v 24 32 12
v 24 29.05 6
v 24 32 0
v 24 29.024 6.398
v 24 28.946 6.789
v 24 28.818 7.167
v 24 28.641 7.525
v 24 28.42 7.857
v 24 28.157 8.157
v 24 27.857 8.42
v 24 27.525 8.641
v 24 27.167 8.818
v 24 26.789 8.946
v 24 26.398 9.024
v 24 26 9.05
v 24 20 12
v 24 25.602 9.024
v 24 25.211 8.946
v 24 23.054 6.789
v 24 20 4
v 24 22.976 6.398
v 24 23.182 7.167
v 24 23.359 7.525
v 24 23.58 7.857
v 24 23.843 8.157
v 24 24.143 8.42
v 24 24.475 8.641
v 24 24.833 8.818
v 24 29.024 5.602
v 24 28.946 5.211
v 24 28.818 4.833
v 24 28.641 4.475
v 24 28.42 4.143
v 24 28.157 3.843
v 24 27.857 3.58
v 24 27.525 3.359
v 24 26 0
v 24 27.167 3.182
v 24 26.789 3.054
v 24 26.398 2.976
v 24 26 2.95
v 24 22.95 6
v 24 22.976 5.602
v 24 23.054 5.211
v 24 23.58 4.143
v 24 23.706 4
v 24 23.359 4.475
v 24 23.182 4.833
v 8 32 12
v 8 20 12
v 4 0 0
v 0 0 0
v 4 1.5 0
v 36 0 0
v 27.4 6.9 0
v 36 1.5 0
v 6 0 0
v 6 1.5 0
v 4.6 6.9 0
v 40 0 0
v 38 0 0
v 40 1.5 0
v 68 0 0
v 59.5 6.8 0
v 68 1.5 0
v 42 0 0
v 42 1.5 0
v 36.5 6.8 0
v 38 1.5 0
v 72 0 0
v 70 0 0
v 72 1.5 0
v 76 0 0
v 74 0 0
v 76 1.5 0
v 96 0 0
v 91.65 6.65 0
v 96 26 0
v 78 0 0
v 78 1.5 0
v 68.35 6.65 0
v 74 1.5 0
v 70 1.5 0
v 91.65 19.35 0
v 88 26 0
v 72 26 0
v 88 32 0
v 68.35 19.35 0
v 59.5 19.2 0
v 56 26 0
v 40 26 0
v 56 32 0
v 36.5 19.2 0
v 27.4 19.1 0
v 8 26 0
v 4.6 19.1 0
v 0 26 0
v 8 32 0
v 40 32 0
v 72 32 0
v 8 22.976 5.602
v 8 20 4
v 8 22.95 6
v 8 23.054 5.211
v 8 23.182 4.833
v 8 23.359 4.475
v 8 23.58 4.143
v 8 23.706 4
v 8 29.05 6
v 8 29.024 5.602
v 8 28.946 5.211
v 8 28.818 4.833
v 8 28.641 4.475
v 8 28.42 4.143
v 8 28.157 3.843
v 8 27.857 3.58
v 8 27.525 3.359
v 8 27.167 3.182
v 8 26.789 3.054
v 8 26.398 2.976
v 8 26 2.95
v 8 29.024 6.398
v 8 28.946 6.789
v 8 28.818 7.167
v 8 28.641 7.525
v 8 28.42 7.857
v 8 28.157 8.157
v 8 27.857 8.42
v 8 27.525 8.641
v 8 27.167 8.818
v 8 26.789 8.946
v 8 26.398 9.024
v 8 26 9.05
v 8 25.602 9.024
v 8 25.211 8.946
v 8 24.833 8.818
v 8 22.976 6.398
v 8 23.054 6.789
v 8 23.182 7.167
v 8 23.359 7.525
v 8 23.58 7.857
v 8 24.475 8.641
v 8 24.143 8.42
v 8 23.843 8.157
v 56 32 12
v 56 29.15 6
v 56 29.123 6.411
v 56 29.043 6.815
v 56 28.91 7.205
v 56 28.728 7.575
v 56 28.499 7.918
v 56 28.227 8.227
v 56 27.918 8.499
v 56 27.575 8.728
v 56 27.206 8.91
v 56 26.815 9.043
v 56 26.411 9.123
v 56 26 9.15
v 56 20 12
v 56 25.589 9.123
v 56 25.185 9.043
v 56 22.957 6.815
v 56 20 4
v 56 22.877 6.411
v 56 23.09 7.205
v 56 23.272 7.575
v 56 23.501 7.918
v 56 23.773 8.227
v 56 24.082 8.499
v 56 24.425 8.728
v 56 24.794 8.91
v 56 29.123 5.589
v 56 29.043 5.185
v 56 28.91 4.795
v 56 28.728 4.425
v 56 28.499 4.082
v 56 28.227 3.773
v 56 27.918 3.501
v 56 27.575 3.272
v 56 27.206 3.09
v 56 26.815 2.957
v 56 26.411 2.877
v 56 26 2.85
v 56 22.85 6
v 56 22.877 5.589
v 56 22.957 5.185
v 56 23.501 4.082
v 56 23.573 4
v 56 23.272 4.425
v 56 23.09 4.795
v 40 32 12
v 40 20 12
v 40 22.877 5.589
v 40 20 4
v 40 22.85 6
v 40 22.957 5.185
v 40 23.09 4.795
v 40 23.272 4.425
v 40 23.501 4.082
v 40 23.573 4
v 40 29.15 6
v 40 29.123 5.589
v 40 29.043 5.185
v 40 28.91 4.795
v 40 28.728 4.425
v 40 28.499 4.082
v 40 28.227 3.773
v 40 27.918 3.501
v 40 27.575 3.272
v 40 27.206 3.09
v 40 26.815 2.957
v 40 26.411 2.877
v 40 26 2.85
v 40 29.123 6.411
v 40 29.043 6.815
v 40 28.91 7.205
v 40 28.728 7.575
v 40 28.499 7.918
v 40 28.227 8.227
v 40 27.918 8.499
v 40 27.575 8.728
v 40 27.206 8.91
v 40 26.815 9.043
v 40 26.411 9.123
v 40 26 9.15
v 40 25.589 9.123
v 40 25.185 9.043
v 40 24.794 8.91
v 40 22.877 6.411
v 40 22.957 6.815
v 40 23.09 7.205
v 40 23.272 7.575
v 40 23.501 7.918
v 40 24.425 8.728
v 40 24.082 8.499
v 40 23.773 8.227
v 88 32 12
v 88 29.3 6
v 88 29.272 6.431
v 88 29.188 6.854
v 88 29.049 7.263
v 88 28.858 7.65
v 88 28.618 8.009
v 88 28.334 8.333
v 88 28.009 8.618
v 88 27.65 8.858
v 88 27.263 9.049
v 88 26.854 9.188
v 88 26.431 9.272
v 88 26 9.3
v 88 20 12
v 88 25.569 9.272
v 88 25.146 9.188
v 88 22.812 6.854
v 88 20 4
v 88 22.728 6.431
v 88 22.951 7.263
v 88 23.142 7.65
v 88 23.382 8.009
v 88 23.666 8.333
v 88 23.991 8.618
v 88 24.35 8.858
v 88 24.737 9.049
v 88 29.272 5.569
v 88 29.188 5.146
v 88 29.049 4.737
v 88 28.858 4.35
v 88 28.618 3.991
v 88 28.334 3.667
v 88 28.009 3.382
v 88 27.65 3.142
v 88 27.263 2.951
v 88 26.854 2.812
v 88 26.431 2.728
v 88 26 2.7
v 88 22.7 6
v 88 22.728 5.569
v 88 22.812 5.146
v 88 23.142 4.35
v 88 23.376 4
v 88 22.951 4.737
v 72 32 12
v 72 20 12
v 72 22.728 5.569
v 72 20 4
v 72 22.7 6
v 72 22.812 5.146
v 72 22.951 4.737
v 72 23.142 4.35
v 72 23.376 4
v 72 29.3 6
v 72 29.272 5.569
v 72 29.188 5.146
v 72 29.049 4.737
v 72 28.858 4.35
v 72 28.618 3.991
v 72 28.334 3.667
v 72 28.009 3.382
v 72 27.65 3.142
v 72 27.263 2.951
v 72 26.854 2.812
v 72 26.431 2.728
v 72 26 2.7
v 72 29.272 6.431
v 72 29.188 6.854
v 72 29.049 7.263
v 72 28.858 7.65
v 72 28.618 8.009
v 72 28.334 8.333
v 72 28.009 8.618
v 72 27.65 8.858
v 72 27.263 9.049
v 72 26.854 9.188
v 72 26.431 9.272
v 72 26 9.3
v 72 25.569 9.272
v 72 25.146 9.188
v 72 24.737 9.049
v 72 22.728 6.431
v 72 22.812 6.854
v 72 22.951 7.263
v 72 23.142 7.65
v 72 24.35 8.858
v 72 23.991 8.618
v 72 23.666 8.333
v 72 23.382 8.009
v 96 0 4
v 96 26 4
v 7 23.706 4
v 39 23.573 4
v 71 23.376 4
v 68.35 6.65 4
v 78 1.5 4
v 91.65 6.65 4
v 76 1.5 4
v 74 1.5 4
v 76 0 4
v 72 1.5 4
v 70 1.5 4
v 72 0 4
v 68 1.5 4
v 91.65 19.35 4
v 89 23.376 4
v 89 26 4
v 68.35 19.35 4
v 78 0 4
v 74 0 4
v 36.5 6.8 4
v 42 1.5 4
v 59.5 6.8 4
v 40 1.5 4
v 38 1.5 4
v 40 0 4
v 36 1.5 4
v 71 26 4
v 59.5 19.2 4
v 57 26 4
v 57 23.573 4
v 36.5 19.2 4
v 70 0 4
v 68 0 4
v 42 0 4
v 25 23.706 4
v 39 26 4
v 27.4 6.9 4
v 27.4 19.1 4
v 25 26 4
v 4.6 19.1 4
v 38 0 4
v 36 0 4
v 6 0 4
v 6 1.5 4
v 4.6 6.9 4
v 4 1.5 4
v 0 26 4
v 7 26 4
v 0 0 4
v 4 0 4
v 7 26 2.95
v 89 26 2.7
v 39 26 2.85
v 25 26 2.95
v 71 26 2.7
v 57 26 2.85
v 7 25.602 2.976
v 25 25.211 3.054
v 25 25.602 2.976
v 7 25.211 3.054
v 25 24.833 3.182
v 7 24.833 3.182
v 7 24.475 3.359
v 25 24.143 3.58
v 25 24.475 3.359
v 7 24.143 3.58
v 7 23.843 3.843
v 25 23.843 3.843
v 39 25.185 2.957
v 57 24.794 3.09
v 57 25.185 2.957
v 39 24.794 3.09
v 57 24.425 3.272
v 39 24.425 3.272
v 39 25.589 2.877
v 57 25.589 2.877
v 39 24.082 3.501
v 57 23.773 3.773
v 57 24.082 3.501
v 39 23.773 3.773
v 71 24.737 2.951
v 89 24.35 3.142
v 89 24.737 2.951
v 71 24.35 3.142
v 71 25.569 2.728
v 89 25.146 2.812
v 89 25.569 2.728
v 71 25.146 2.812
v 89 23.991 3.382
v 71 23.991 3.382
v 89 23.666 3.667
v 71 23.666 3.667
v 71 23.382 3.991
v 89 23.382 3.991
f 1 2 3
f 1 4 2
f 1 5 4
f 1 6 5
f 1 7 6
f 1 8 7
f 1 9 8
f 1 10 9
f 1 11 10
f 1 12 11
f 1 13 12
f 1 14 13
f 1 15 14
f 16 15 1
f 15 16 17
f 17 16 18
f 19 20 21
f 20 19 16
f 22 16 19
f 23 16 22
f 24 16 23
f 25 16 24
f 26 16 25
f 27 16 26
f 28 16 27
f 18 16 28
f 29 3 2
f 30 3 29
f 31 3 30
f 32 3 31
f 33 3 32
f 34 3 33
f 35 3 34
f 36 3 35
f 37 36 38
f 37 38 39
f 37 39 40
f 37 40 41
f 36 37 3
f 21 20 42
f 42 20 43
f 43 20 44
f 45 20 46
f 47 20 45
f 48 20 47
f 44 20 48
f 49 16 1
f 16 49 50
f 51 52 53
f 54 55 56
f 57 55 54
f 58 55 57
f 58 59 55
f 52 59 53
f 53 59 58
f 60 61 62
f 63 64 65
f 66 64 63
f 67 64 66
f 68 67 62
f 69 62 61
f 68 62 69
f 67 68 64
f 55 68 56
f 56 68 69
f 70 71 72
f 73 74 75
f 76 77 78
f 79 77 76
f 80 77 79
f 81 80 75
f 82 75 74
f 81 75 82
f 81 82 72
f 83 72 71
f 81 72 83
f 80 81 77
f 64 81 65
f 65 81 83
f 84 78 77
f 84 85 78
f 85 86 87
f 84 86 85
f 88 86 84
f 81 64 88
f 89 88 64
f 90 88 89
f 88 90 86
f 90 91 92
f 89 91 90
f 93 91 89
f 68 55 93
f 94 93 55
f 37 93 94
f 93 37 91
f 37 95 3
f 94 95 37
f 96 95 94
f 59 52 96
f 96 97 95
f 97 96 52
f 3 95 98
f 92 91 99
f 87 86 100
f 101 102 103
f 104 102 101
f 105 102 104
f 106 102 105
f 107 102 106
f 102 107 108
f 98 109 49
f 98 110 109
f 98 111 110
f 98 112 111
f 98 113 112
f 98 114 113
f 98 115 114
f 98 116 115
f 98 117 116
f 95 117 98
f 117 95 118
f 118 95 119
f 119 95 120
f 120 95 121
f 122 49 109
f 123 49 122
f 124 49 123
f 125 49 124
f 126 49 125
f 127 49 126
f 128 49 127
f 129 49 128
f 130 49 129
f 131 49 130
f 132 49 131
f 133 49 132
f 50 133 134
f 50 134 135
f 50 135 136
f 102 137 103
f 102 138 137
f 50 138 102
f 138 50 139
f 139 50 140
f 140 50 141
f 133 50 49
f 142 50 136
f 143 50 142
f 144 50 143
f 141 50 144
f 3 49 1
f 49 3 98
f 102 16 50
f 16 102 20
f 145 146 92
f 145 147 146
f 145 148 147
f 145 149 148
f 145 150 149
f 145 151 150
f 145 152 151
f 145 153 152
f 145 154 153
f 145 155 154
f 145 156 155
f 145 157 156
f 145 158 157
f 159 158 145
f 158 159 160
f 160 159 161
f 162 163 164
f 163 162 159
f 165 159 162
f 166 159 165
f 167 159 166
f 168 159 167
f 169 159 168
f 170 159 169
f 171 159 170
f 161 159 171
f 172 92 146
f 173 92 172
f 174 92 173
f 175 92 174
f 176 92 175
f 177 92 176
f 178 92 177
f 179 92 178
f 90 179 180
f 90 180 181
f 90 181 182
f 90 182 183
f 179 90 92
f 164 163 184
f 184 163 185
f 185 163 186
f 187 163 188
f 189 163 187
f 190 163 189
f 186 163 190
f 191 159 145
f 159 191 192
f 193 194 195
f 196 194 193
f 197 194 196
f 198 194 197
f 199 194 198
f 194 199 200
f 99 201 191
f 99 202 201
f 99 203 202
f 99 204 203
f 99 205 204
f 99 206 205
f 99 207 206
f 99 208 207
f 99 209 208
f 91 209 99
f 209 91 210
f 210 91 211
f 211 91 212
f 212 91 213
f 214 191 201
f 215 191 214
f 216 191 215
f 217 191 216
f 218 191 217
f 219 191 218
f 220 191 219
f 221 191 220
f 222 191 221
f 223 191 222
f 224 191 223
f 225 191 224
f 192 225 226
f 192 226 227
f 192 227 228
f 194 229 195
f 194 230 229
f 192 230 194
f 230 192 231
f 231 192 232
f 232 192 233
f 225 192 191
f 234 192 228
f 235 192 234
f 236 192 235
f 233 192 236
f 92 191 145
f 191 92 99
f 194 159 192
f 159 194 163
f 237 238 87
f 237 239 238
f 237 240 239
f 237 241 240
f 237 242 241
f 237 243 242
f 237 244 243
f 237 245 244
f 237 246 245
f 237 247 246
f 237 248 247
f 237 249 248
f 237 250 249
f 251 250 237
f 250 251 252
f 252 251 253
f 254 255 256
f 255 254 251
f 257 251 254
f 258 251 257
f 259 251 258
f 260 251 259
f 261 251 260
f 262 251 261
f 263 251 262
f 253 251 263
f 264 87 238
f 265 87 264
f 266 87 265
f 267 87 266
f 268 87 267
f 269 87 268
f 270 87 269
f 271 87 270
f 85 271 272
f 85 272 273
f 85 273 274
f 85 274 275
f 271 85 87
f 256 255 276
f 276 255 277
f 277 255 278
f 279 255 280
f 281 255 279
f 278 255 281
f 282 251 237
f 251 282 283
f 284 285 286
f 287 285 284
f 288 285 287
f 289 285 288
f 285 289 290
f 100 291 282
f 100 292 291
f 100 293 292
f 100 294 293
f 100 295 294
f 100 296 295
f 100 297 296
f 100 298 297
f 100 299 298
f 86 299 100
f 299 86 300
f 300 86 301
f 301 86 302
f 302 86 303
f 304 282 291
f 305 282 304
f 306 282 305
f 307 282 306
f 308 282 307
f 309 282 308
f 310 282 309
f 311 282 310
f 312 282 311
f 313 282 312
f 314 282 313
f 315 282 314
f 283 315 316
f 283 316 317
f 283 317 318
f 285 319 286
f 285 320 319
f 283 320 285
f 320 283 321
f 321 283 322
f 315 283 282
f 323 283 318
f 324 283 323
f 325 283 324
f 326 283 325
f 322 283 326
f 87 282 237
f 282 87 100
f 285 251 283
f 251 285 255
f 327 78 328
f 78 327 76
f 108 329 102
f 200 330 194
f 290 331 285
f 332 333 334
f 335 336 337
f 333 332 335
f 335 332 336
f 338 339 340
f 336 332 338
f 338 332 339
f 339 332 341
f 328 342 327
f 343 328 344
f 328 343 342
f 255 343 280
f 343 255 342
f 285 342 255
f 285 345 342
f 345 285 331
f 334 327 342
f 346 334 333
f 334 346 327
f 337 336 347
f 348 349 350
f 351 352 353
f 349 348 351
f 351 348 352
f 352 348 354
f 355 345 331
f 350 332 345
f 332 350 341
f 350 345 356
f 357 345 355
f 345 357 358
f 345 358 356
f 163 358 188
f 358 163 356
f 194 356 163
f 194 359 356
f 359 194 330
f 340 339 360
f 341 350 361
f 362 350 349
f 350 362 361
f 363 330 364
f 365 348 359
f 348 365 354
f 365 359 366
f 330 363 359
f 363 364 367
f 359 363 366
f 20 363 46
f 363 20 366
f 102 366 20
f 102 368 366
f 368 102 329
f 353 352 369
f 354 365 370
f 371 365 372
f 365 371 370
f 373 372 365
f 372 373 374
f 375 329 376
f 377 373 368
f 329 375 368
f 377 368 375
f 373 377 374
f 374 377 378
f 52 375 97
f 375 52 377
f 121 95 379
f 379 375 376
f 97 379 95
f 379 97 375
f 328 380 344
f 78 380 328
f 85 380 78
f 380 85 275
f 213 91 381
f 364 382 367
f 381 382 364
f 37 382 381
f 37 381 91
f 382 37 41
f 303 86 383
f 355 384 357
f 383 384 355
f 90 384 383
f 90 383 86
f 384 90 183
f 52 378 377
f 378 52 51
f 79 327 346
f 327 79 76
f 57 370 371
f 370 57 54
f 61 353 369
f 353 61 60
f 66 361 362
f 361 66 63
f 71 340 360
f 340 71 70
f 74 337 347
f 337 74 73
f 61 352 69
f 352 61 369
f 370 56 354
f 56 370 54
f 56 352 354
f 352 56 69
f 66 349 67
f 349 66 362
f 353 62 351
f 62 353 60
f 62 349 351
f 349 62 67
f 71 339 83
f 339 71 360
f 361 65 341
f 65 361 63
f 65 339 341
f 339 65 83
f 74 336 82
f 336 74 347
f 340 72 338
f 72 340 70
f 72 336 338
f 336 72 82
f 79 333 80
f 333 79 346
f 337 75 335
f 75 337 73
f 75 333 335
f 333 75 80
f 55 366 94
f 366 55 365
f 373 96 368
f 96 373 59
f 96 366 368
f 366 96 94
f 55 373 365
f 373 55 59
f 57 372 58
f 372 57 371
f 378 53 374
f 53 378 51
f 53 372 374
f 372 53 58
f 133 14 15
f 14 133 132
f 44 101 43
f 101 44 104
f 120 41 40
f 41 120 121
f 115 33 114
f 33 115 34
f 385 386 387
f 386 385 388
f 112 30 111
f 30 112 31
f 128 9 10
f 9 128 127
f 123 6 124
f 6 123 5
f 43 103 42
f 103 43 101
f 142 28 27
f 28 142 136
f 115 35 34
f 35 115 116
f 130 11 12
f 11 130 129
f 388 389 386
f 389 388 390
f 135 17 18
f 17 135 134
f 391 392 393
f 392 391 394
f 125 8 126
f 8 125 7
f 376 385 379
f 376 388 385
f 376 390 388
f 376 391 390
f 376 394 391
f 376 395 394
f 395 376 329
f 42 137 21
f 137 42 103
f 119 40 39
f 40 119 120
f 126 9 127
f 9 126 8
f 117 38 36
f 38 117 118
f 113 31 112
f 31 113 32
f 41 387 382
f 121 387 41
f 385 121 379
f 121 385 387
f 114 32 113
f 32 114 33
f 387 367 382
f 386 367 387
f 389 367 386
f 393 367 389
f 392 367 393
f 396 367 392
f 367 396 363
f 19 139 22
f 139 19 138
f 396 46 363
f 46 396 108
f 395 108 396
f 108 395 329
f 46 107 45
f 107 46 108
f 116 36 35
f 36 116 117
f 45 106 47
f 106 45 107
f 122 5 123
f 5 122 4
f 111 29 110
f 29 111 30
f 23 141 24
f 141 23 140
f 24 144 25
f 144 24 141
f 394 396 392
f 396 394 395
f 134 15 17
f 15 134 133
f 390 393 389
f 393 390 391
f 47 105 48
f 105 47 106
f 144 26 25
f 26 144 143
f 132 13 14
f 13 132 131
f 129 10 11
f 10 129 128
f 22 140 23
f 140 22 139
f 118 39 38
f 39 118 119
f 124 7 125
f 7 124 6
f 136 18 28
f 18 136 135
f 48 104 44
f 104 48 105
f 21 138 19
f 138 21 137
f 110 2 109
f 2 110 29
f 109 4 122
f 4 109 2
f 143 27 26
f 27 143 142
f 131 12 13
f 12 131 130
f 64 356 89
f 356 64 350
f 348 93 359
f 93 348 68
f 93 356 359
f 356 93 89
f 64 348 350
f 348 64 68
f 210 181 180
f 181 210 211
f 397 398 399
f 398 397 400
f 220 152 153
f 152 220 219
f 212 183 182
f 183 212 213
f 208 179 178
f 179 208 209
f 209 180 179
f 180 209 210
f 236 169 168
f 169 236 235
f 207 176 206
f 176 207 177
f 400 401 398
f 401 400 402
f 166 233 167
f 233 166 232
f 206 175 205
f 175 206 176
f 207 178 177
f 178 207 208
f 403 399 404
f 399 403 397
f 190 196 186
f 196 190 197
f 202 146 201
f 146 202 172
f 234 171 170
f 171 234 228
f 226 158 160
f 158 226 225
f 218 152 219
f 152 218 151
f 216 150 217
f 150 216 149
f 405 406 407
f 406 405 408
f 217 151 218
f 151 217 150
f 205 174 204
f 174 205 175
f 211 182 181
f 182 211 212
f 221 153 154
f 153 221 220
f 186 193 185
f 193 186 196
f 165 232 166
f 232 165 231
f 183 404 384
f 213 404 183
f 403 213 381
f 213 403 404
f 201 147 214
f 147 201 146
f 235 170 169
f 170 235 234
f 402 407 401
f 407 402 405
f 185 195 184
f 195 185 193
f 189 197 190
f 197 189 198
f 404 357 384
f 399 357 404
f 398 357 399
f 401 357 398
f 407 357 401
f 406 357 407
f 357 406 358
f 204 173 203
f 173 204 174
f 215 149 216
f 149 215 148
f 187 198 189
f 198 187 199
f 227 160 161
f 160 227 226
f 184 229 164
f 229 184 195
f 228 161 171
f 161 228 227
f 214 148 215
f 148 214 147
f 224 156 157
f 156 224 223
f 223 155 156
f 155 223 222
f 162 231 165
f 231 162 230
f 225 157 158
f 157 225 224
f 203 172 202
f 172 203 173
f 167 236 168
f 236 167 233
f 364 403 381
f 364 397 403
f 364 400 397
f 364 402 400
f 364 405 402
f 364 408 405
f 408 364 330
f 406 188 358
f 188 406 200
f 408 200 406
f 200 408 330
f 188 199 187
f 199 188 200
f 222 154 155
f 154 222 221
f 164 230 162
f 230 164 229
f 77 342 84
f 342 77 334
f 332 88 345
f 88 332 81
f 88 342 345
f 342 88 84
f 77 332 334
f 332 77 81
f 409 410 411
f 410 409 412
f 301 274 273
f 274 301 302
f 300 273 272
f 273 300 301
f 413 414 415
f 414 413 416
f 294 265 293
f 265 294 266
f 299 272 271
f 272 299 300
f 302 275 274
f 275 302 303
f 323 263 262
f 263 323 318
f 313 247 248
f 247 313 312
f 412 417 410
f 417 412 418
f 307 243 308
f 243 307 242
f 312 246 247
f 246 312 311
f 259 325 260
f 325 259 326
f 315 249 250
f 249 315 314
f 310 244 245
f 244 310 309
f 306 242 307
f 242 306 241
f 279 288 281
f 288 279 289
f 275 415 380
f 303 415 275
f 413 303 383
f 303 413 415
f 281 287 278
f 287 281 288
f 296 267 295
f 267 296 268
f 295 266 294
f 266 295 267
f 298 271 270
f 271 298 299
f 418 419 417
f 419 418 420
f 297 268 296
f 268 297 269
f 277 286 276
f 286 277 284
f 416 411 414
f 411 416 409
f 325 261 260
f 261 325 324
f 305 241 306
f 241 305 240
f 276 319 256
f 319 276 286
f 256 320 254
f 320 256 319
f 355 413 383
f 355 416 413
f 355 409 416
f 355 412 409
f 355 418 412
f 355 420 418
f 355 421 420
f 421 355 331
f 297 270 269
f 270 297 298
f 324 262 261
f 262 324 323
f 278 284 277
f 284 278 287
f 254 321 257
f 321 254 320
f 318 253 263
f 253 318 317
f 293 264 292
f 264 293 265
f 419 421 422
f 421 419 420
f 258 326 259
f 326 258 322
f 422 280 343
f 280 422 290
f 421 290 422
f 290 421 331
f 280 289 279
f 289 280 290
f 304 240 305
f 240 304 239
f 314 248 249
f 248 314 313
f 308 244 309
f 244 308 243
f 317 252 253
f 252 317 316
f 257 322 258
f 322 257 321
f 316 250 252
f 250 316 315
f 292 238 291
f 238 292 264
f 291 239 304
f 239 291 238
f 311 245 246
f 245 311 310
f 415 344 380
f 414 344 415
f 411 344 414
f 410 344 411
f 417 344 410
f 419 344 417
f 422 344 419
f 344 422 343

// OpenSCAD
// Fit test: 3 servo slots (tight / normal / loose) + 3 laser holes.
// Notches on the edge = which size: 1 notch tight, 2 normal, 3 loose.
$fn=48;
tols=[0.1,0.2,0.35]; lds=[6.1,6.3,6.6];
difference(){
  union(){
    cube([96,26,4]);
    for(i=[0:2]) translate([8+i*32,20,0]) cube([16,12,12]);   // laser test blocks
  }
  for(i=[0:2]){
    t=tols[i];
    translate([16+i*32-(22.6+2*t)/2, 13-(12+2*t)/2, -1]) cube([22.6+2*t, 12+2*t, 10]);
    for(n=[0:i]) translate([4+i*32+n*4, -1, -1]) cube([2,2.5,10]);     // notches
    translate([8+i*32-1, 26, 6]) rotate([0,90,0]) cylinder(d=lds[i], h=18);  // laser bore
  }
}
